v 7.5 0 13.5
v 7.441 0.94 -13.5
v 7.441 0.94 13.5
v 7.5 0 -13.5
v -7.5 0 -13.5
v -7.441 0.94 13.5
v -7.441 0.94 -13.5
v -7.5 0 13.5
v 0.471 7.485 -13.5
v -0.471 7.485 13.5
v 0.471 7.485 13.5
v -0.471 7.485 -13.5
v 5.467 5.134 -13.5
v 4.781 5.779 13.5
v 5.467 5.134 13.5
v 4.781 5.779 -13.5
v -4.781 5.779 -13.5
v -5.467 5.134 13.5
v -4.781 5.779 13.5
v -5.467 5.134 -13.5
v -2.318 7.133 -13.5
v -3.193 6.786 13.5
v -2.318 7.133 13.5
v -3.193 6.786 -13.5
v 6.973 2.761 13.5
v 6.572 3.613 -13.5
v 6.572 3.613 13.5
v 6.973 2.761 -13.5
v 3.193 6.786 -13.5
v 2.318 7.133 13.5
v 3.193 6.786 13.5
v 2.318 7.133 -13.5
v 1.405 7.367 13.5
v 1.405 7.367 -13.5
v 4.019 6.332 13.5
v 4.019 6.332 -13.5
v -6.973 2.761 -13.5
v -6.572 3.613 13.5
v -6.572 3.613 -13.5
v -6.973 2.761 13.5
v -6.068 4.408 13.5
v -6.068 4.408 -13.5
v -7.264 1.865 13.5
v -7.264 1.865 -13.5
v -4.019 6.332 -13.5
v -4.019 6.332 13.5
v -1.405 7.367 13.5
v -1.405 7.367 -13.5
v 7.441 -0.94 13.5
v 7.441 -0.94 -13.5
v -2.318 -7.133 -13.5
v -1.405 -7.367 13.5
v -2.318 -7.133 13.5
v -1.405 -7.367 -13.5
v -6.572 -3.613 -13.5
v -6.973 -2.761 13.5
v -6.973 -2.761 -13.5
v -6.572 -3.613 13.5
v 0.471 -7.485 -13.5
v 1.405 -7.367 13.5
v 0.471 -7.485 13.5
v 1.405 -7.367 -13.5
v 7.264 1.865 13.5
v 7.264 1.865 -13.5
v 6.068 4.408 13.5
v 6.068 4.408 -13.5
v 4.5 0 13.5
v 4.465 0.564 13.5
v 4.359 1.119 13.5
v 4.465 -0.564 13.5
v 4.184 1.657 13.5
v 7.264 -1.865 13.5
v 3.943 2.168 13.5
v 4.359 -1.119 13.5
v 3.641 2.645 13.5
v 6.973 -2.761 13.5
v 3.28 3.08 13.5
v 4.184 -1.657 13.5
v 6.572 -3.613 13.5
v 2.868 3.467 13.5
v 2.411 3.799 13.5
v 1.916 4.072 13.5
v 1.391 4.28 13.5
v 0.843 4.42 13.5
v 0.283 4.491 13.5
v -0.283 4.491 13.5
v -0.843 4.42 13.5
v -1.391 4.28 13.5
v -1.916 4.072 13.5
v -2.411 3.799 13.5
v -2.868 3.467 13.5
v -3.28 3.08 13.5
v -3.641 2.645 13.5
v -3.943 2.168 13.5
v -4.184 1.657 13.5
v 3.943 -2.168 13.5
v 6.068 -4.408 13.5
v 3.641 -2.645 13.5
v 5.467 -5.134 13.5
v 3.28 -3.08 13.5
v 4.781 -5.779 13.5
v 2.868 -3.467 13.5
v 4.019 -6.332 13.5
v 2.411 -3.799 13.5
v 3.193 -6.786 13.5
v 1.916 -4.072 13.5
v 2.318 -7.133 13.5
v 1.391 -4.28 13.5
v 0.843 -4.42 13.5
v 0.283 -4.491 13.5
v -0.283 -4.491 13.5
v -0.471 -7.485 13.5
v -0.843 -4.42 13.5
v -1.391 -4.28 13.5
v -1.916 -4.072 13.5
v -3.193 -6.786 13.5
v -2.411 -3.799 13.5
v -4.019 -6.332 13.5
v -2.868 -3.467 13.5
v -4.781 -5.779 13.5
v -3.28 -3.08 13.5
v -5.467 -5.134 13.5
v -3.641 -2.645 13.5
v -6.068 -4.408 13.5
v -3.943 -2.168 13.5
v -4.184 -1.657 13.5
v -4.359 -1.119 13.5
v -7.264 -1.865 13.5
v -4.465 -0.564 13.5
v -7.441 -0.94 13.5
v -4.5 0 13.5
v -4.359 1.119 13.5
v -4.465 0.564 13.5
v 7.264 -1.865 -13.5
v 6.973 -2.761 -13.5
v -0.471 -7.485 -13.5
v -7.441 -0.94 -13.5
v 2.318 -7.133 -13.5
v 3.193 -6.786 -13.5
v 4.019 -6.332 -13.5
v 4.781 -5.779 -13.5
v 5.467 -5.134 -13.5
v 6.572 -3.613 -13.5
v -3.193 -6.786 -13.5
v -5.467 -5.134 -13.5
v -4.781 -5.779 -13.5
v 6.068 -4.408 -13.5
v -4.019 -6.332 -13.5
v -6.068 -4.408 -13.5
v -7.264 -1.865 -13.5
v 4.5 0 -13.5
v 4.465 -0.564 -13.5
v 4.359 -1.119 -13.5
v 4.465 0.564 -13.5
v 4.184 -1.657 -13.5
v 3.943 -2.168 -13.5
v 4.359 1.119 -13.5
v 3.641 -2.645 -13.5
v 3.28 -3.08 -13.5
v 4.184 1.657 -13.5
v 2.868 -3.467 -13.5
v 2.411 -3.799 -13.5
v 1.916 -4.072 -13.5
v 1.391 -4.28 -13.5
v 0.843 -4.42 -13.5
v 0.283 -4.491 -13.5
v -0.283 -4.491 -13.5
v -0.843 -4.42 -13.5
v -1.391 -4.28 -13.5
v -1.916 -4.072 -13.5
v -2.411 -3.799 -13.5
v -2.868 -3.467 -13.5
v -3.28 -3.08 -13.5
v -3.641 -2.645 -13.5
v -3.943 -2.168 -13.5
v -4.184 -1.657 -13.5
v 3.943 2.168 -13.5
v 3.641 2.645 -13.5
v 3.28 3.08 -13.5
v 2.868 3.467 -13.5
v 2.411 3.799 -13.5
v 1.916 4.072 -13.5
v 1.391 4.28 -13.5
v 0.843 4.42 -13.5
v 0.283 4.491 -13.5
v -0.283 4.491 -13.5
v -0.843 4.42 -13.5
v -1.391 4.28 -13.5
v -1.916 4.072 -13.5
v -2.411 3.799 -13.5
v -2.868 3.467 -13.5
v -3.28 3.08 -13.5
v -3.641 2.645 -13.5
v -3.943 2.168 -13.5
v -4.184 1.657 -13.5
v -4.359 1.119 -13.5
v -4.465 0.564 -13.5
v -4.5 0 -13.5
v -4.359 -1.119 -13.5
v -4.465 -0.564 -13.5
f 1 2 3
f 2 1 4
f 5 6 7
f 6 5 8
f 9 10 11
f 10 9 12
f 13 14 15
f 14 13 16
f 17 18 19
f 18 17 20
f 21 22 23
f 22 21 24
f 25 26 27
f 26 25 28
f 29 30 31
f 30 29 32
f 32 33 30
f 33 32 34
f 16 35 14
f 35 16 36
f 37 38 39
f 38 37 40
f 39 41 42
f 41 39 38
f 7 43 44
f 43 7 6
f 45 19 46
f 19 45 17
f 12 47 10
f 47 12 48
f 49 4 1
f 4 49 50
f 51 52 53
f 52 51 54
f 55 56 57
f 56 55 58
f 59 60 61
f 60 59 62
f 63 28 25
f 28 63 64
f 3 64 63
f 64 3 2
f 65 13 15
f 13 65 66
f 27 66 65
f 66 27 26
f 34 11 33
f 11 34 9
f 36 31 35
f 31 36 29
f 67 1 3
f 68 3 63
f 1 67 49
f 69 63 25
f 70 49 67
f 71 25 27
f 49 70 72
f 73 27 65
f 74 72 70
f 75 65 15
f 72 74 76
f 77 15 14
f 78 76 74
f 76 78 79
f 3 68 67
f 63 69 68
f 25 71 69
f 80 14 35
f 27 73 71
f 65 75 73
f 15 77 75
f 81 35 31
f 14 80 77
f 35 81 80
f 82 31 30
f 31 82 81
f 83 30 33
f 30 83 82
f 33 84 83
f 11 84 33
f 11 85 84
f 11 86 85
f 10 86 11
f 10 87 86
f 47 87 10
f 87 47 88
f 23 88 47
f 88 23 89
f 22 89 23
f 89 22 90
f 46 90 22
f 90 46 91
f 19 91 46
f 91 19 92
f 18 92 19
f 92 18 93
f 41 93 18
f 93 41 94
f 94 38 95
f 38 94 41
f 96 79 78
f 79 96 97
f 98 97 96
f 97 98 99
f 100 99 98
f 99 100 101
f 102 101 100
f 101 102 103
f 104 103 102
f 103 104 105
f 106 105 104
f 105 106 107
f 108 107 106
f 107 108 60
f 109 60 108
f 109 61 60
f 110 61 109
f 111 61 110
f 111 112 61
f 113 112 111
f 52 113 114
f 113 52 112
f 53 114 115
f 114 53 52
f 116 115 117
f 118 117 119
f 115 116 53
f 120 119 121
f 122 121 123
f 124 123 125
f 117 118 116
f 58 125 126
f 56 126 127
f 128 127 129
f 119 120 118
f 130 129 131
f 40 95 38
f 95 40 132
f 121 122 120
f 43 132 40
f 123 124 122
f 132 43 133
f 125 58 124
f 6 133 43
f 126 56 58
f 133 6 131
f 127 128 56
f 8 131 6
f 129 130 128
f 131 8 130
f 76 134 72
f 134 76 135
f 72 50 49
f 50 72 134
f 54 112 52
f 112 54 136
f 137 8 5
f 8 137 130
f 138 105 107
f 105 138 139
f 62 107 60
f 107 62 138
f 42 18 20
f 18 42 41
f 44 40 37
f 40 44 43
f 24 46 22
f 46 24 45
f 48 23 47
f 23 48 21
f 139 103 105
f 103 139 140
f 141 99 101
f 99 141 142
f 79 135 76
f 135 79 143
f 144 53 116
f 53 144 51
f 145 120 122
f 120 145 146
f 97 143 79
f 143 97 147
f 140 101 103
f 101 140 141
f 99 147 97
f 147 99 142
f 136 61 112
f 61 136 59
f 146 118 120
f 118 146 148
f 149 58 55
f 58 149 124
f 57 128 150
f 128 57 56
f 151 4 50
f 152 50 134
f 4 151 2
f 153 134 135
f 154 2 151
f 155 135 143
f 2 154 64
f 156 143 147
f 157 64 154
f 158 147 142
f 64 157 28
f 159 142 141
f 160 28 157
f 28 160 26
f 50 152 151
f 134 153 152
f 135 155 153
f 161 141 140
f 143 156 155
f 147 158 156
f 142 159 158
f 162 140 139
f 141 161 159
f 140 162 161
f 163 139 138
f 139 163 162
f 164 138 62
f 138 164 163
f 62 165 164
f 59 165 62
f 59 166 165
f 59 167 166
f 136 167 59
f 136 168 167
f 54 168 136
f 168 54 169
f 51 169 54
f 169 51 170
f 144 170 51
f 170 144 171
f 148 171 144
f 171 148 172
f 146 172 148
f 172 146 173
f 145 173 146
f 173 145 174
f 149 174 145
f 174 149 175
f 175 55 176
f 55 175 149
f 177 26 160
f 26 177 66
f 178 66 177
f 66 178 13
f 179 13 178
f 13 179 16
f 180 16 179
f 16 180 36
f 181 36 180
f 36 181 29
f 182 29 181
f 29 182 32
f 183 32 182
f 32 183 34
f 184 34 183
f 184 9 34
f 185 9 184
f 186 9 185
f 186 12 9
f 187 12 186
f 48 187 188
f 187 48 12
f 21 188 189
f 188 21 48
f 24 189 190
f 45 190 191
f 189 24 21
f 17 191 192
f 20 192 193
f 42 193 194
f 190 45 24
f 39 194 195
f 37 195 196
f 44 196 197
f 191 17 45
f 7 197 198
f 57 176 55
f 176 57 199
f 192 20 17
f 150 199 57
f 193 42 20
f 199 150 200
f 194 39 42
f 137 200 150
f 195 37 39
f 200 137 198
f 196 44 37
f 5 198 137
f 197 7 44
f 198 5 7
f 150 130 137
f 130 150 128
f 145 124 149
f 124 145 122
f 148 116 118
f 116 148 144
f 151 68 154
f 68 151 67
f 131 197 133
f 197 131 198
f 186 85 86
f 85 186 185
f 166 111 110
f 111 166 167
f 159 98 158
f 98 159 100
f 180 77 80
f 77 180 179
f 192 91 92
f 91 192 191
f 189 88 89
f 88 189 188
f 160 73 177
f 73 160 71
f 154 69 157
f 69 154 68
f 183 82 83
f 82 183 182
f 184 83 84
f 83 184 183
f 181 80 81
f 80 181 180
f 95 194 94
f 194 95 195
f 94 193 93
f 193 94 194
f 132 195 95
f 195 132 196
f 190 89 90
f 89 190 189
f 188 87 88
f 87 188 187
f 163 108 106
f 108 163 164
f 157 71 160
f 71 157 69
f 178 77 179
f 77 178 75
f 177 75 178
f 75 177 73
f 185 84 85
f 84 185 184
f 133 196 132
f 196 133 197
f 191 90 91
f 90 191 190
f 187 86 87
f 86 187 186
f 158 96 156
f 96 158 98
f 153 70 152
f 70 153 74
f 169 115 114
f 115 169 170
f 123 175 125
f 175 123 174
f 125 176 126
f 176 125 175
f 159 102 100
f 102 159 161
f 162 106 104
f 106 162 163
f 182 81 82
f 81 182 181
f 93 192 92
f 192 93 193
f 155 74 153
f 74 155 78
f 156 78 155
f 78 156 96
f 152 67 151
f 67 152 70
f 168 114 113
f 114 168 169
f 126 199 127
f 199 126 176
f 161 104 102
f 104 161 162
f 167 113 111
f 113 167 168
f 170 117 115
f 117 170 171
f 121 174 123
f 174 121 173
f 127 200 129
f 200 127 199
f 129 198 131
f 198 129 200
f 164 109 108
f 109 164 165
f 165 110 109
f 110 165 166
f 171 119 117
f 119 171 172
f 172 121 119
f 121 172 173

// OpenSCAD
$fn = 50;


difference() {
	union() {
		translate(v = [0, 0, -13.5000000000]) {
			cylinder(h = 27, r = 7.5000000000);
		}
	}
	union() {
		translate(v = [0, 0, -100.0000000000]) {
			cylinder(h = 200, r = 4.5000000000);
		}
	}
}
